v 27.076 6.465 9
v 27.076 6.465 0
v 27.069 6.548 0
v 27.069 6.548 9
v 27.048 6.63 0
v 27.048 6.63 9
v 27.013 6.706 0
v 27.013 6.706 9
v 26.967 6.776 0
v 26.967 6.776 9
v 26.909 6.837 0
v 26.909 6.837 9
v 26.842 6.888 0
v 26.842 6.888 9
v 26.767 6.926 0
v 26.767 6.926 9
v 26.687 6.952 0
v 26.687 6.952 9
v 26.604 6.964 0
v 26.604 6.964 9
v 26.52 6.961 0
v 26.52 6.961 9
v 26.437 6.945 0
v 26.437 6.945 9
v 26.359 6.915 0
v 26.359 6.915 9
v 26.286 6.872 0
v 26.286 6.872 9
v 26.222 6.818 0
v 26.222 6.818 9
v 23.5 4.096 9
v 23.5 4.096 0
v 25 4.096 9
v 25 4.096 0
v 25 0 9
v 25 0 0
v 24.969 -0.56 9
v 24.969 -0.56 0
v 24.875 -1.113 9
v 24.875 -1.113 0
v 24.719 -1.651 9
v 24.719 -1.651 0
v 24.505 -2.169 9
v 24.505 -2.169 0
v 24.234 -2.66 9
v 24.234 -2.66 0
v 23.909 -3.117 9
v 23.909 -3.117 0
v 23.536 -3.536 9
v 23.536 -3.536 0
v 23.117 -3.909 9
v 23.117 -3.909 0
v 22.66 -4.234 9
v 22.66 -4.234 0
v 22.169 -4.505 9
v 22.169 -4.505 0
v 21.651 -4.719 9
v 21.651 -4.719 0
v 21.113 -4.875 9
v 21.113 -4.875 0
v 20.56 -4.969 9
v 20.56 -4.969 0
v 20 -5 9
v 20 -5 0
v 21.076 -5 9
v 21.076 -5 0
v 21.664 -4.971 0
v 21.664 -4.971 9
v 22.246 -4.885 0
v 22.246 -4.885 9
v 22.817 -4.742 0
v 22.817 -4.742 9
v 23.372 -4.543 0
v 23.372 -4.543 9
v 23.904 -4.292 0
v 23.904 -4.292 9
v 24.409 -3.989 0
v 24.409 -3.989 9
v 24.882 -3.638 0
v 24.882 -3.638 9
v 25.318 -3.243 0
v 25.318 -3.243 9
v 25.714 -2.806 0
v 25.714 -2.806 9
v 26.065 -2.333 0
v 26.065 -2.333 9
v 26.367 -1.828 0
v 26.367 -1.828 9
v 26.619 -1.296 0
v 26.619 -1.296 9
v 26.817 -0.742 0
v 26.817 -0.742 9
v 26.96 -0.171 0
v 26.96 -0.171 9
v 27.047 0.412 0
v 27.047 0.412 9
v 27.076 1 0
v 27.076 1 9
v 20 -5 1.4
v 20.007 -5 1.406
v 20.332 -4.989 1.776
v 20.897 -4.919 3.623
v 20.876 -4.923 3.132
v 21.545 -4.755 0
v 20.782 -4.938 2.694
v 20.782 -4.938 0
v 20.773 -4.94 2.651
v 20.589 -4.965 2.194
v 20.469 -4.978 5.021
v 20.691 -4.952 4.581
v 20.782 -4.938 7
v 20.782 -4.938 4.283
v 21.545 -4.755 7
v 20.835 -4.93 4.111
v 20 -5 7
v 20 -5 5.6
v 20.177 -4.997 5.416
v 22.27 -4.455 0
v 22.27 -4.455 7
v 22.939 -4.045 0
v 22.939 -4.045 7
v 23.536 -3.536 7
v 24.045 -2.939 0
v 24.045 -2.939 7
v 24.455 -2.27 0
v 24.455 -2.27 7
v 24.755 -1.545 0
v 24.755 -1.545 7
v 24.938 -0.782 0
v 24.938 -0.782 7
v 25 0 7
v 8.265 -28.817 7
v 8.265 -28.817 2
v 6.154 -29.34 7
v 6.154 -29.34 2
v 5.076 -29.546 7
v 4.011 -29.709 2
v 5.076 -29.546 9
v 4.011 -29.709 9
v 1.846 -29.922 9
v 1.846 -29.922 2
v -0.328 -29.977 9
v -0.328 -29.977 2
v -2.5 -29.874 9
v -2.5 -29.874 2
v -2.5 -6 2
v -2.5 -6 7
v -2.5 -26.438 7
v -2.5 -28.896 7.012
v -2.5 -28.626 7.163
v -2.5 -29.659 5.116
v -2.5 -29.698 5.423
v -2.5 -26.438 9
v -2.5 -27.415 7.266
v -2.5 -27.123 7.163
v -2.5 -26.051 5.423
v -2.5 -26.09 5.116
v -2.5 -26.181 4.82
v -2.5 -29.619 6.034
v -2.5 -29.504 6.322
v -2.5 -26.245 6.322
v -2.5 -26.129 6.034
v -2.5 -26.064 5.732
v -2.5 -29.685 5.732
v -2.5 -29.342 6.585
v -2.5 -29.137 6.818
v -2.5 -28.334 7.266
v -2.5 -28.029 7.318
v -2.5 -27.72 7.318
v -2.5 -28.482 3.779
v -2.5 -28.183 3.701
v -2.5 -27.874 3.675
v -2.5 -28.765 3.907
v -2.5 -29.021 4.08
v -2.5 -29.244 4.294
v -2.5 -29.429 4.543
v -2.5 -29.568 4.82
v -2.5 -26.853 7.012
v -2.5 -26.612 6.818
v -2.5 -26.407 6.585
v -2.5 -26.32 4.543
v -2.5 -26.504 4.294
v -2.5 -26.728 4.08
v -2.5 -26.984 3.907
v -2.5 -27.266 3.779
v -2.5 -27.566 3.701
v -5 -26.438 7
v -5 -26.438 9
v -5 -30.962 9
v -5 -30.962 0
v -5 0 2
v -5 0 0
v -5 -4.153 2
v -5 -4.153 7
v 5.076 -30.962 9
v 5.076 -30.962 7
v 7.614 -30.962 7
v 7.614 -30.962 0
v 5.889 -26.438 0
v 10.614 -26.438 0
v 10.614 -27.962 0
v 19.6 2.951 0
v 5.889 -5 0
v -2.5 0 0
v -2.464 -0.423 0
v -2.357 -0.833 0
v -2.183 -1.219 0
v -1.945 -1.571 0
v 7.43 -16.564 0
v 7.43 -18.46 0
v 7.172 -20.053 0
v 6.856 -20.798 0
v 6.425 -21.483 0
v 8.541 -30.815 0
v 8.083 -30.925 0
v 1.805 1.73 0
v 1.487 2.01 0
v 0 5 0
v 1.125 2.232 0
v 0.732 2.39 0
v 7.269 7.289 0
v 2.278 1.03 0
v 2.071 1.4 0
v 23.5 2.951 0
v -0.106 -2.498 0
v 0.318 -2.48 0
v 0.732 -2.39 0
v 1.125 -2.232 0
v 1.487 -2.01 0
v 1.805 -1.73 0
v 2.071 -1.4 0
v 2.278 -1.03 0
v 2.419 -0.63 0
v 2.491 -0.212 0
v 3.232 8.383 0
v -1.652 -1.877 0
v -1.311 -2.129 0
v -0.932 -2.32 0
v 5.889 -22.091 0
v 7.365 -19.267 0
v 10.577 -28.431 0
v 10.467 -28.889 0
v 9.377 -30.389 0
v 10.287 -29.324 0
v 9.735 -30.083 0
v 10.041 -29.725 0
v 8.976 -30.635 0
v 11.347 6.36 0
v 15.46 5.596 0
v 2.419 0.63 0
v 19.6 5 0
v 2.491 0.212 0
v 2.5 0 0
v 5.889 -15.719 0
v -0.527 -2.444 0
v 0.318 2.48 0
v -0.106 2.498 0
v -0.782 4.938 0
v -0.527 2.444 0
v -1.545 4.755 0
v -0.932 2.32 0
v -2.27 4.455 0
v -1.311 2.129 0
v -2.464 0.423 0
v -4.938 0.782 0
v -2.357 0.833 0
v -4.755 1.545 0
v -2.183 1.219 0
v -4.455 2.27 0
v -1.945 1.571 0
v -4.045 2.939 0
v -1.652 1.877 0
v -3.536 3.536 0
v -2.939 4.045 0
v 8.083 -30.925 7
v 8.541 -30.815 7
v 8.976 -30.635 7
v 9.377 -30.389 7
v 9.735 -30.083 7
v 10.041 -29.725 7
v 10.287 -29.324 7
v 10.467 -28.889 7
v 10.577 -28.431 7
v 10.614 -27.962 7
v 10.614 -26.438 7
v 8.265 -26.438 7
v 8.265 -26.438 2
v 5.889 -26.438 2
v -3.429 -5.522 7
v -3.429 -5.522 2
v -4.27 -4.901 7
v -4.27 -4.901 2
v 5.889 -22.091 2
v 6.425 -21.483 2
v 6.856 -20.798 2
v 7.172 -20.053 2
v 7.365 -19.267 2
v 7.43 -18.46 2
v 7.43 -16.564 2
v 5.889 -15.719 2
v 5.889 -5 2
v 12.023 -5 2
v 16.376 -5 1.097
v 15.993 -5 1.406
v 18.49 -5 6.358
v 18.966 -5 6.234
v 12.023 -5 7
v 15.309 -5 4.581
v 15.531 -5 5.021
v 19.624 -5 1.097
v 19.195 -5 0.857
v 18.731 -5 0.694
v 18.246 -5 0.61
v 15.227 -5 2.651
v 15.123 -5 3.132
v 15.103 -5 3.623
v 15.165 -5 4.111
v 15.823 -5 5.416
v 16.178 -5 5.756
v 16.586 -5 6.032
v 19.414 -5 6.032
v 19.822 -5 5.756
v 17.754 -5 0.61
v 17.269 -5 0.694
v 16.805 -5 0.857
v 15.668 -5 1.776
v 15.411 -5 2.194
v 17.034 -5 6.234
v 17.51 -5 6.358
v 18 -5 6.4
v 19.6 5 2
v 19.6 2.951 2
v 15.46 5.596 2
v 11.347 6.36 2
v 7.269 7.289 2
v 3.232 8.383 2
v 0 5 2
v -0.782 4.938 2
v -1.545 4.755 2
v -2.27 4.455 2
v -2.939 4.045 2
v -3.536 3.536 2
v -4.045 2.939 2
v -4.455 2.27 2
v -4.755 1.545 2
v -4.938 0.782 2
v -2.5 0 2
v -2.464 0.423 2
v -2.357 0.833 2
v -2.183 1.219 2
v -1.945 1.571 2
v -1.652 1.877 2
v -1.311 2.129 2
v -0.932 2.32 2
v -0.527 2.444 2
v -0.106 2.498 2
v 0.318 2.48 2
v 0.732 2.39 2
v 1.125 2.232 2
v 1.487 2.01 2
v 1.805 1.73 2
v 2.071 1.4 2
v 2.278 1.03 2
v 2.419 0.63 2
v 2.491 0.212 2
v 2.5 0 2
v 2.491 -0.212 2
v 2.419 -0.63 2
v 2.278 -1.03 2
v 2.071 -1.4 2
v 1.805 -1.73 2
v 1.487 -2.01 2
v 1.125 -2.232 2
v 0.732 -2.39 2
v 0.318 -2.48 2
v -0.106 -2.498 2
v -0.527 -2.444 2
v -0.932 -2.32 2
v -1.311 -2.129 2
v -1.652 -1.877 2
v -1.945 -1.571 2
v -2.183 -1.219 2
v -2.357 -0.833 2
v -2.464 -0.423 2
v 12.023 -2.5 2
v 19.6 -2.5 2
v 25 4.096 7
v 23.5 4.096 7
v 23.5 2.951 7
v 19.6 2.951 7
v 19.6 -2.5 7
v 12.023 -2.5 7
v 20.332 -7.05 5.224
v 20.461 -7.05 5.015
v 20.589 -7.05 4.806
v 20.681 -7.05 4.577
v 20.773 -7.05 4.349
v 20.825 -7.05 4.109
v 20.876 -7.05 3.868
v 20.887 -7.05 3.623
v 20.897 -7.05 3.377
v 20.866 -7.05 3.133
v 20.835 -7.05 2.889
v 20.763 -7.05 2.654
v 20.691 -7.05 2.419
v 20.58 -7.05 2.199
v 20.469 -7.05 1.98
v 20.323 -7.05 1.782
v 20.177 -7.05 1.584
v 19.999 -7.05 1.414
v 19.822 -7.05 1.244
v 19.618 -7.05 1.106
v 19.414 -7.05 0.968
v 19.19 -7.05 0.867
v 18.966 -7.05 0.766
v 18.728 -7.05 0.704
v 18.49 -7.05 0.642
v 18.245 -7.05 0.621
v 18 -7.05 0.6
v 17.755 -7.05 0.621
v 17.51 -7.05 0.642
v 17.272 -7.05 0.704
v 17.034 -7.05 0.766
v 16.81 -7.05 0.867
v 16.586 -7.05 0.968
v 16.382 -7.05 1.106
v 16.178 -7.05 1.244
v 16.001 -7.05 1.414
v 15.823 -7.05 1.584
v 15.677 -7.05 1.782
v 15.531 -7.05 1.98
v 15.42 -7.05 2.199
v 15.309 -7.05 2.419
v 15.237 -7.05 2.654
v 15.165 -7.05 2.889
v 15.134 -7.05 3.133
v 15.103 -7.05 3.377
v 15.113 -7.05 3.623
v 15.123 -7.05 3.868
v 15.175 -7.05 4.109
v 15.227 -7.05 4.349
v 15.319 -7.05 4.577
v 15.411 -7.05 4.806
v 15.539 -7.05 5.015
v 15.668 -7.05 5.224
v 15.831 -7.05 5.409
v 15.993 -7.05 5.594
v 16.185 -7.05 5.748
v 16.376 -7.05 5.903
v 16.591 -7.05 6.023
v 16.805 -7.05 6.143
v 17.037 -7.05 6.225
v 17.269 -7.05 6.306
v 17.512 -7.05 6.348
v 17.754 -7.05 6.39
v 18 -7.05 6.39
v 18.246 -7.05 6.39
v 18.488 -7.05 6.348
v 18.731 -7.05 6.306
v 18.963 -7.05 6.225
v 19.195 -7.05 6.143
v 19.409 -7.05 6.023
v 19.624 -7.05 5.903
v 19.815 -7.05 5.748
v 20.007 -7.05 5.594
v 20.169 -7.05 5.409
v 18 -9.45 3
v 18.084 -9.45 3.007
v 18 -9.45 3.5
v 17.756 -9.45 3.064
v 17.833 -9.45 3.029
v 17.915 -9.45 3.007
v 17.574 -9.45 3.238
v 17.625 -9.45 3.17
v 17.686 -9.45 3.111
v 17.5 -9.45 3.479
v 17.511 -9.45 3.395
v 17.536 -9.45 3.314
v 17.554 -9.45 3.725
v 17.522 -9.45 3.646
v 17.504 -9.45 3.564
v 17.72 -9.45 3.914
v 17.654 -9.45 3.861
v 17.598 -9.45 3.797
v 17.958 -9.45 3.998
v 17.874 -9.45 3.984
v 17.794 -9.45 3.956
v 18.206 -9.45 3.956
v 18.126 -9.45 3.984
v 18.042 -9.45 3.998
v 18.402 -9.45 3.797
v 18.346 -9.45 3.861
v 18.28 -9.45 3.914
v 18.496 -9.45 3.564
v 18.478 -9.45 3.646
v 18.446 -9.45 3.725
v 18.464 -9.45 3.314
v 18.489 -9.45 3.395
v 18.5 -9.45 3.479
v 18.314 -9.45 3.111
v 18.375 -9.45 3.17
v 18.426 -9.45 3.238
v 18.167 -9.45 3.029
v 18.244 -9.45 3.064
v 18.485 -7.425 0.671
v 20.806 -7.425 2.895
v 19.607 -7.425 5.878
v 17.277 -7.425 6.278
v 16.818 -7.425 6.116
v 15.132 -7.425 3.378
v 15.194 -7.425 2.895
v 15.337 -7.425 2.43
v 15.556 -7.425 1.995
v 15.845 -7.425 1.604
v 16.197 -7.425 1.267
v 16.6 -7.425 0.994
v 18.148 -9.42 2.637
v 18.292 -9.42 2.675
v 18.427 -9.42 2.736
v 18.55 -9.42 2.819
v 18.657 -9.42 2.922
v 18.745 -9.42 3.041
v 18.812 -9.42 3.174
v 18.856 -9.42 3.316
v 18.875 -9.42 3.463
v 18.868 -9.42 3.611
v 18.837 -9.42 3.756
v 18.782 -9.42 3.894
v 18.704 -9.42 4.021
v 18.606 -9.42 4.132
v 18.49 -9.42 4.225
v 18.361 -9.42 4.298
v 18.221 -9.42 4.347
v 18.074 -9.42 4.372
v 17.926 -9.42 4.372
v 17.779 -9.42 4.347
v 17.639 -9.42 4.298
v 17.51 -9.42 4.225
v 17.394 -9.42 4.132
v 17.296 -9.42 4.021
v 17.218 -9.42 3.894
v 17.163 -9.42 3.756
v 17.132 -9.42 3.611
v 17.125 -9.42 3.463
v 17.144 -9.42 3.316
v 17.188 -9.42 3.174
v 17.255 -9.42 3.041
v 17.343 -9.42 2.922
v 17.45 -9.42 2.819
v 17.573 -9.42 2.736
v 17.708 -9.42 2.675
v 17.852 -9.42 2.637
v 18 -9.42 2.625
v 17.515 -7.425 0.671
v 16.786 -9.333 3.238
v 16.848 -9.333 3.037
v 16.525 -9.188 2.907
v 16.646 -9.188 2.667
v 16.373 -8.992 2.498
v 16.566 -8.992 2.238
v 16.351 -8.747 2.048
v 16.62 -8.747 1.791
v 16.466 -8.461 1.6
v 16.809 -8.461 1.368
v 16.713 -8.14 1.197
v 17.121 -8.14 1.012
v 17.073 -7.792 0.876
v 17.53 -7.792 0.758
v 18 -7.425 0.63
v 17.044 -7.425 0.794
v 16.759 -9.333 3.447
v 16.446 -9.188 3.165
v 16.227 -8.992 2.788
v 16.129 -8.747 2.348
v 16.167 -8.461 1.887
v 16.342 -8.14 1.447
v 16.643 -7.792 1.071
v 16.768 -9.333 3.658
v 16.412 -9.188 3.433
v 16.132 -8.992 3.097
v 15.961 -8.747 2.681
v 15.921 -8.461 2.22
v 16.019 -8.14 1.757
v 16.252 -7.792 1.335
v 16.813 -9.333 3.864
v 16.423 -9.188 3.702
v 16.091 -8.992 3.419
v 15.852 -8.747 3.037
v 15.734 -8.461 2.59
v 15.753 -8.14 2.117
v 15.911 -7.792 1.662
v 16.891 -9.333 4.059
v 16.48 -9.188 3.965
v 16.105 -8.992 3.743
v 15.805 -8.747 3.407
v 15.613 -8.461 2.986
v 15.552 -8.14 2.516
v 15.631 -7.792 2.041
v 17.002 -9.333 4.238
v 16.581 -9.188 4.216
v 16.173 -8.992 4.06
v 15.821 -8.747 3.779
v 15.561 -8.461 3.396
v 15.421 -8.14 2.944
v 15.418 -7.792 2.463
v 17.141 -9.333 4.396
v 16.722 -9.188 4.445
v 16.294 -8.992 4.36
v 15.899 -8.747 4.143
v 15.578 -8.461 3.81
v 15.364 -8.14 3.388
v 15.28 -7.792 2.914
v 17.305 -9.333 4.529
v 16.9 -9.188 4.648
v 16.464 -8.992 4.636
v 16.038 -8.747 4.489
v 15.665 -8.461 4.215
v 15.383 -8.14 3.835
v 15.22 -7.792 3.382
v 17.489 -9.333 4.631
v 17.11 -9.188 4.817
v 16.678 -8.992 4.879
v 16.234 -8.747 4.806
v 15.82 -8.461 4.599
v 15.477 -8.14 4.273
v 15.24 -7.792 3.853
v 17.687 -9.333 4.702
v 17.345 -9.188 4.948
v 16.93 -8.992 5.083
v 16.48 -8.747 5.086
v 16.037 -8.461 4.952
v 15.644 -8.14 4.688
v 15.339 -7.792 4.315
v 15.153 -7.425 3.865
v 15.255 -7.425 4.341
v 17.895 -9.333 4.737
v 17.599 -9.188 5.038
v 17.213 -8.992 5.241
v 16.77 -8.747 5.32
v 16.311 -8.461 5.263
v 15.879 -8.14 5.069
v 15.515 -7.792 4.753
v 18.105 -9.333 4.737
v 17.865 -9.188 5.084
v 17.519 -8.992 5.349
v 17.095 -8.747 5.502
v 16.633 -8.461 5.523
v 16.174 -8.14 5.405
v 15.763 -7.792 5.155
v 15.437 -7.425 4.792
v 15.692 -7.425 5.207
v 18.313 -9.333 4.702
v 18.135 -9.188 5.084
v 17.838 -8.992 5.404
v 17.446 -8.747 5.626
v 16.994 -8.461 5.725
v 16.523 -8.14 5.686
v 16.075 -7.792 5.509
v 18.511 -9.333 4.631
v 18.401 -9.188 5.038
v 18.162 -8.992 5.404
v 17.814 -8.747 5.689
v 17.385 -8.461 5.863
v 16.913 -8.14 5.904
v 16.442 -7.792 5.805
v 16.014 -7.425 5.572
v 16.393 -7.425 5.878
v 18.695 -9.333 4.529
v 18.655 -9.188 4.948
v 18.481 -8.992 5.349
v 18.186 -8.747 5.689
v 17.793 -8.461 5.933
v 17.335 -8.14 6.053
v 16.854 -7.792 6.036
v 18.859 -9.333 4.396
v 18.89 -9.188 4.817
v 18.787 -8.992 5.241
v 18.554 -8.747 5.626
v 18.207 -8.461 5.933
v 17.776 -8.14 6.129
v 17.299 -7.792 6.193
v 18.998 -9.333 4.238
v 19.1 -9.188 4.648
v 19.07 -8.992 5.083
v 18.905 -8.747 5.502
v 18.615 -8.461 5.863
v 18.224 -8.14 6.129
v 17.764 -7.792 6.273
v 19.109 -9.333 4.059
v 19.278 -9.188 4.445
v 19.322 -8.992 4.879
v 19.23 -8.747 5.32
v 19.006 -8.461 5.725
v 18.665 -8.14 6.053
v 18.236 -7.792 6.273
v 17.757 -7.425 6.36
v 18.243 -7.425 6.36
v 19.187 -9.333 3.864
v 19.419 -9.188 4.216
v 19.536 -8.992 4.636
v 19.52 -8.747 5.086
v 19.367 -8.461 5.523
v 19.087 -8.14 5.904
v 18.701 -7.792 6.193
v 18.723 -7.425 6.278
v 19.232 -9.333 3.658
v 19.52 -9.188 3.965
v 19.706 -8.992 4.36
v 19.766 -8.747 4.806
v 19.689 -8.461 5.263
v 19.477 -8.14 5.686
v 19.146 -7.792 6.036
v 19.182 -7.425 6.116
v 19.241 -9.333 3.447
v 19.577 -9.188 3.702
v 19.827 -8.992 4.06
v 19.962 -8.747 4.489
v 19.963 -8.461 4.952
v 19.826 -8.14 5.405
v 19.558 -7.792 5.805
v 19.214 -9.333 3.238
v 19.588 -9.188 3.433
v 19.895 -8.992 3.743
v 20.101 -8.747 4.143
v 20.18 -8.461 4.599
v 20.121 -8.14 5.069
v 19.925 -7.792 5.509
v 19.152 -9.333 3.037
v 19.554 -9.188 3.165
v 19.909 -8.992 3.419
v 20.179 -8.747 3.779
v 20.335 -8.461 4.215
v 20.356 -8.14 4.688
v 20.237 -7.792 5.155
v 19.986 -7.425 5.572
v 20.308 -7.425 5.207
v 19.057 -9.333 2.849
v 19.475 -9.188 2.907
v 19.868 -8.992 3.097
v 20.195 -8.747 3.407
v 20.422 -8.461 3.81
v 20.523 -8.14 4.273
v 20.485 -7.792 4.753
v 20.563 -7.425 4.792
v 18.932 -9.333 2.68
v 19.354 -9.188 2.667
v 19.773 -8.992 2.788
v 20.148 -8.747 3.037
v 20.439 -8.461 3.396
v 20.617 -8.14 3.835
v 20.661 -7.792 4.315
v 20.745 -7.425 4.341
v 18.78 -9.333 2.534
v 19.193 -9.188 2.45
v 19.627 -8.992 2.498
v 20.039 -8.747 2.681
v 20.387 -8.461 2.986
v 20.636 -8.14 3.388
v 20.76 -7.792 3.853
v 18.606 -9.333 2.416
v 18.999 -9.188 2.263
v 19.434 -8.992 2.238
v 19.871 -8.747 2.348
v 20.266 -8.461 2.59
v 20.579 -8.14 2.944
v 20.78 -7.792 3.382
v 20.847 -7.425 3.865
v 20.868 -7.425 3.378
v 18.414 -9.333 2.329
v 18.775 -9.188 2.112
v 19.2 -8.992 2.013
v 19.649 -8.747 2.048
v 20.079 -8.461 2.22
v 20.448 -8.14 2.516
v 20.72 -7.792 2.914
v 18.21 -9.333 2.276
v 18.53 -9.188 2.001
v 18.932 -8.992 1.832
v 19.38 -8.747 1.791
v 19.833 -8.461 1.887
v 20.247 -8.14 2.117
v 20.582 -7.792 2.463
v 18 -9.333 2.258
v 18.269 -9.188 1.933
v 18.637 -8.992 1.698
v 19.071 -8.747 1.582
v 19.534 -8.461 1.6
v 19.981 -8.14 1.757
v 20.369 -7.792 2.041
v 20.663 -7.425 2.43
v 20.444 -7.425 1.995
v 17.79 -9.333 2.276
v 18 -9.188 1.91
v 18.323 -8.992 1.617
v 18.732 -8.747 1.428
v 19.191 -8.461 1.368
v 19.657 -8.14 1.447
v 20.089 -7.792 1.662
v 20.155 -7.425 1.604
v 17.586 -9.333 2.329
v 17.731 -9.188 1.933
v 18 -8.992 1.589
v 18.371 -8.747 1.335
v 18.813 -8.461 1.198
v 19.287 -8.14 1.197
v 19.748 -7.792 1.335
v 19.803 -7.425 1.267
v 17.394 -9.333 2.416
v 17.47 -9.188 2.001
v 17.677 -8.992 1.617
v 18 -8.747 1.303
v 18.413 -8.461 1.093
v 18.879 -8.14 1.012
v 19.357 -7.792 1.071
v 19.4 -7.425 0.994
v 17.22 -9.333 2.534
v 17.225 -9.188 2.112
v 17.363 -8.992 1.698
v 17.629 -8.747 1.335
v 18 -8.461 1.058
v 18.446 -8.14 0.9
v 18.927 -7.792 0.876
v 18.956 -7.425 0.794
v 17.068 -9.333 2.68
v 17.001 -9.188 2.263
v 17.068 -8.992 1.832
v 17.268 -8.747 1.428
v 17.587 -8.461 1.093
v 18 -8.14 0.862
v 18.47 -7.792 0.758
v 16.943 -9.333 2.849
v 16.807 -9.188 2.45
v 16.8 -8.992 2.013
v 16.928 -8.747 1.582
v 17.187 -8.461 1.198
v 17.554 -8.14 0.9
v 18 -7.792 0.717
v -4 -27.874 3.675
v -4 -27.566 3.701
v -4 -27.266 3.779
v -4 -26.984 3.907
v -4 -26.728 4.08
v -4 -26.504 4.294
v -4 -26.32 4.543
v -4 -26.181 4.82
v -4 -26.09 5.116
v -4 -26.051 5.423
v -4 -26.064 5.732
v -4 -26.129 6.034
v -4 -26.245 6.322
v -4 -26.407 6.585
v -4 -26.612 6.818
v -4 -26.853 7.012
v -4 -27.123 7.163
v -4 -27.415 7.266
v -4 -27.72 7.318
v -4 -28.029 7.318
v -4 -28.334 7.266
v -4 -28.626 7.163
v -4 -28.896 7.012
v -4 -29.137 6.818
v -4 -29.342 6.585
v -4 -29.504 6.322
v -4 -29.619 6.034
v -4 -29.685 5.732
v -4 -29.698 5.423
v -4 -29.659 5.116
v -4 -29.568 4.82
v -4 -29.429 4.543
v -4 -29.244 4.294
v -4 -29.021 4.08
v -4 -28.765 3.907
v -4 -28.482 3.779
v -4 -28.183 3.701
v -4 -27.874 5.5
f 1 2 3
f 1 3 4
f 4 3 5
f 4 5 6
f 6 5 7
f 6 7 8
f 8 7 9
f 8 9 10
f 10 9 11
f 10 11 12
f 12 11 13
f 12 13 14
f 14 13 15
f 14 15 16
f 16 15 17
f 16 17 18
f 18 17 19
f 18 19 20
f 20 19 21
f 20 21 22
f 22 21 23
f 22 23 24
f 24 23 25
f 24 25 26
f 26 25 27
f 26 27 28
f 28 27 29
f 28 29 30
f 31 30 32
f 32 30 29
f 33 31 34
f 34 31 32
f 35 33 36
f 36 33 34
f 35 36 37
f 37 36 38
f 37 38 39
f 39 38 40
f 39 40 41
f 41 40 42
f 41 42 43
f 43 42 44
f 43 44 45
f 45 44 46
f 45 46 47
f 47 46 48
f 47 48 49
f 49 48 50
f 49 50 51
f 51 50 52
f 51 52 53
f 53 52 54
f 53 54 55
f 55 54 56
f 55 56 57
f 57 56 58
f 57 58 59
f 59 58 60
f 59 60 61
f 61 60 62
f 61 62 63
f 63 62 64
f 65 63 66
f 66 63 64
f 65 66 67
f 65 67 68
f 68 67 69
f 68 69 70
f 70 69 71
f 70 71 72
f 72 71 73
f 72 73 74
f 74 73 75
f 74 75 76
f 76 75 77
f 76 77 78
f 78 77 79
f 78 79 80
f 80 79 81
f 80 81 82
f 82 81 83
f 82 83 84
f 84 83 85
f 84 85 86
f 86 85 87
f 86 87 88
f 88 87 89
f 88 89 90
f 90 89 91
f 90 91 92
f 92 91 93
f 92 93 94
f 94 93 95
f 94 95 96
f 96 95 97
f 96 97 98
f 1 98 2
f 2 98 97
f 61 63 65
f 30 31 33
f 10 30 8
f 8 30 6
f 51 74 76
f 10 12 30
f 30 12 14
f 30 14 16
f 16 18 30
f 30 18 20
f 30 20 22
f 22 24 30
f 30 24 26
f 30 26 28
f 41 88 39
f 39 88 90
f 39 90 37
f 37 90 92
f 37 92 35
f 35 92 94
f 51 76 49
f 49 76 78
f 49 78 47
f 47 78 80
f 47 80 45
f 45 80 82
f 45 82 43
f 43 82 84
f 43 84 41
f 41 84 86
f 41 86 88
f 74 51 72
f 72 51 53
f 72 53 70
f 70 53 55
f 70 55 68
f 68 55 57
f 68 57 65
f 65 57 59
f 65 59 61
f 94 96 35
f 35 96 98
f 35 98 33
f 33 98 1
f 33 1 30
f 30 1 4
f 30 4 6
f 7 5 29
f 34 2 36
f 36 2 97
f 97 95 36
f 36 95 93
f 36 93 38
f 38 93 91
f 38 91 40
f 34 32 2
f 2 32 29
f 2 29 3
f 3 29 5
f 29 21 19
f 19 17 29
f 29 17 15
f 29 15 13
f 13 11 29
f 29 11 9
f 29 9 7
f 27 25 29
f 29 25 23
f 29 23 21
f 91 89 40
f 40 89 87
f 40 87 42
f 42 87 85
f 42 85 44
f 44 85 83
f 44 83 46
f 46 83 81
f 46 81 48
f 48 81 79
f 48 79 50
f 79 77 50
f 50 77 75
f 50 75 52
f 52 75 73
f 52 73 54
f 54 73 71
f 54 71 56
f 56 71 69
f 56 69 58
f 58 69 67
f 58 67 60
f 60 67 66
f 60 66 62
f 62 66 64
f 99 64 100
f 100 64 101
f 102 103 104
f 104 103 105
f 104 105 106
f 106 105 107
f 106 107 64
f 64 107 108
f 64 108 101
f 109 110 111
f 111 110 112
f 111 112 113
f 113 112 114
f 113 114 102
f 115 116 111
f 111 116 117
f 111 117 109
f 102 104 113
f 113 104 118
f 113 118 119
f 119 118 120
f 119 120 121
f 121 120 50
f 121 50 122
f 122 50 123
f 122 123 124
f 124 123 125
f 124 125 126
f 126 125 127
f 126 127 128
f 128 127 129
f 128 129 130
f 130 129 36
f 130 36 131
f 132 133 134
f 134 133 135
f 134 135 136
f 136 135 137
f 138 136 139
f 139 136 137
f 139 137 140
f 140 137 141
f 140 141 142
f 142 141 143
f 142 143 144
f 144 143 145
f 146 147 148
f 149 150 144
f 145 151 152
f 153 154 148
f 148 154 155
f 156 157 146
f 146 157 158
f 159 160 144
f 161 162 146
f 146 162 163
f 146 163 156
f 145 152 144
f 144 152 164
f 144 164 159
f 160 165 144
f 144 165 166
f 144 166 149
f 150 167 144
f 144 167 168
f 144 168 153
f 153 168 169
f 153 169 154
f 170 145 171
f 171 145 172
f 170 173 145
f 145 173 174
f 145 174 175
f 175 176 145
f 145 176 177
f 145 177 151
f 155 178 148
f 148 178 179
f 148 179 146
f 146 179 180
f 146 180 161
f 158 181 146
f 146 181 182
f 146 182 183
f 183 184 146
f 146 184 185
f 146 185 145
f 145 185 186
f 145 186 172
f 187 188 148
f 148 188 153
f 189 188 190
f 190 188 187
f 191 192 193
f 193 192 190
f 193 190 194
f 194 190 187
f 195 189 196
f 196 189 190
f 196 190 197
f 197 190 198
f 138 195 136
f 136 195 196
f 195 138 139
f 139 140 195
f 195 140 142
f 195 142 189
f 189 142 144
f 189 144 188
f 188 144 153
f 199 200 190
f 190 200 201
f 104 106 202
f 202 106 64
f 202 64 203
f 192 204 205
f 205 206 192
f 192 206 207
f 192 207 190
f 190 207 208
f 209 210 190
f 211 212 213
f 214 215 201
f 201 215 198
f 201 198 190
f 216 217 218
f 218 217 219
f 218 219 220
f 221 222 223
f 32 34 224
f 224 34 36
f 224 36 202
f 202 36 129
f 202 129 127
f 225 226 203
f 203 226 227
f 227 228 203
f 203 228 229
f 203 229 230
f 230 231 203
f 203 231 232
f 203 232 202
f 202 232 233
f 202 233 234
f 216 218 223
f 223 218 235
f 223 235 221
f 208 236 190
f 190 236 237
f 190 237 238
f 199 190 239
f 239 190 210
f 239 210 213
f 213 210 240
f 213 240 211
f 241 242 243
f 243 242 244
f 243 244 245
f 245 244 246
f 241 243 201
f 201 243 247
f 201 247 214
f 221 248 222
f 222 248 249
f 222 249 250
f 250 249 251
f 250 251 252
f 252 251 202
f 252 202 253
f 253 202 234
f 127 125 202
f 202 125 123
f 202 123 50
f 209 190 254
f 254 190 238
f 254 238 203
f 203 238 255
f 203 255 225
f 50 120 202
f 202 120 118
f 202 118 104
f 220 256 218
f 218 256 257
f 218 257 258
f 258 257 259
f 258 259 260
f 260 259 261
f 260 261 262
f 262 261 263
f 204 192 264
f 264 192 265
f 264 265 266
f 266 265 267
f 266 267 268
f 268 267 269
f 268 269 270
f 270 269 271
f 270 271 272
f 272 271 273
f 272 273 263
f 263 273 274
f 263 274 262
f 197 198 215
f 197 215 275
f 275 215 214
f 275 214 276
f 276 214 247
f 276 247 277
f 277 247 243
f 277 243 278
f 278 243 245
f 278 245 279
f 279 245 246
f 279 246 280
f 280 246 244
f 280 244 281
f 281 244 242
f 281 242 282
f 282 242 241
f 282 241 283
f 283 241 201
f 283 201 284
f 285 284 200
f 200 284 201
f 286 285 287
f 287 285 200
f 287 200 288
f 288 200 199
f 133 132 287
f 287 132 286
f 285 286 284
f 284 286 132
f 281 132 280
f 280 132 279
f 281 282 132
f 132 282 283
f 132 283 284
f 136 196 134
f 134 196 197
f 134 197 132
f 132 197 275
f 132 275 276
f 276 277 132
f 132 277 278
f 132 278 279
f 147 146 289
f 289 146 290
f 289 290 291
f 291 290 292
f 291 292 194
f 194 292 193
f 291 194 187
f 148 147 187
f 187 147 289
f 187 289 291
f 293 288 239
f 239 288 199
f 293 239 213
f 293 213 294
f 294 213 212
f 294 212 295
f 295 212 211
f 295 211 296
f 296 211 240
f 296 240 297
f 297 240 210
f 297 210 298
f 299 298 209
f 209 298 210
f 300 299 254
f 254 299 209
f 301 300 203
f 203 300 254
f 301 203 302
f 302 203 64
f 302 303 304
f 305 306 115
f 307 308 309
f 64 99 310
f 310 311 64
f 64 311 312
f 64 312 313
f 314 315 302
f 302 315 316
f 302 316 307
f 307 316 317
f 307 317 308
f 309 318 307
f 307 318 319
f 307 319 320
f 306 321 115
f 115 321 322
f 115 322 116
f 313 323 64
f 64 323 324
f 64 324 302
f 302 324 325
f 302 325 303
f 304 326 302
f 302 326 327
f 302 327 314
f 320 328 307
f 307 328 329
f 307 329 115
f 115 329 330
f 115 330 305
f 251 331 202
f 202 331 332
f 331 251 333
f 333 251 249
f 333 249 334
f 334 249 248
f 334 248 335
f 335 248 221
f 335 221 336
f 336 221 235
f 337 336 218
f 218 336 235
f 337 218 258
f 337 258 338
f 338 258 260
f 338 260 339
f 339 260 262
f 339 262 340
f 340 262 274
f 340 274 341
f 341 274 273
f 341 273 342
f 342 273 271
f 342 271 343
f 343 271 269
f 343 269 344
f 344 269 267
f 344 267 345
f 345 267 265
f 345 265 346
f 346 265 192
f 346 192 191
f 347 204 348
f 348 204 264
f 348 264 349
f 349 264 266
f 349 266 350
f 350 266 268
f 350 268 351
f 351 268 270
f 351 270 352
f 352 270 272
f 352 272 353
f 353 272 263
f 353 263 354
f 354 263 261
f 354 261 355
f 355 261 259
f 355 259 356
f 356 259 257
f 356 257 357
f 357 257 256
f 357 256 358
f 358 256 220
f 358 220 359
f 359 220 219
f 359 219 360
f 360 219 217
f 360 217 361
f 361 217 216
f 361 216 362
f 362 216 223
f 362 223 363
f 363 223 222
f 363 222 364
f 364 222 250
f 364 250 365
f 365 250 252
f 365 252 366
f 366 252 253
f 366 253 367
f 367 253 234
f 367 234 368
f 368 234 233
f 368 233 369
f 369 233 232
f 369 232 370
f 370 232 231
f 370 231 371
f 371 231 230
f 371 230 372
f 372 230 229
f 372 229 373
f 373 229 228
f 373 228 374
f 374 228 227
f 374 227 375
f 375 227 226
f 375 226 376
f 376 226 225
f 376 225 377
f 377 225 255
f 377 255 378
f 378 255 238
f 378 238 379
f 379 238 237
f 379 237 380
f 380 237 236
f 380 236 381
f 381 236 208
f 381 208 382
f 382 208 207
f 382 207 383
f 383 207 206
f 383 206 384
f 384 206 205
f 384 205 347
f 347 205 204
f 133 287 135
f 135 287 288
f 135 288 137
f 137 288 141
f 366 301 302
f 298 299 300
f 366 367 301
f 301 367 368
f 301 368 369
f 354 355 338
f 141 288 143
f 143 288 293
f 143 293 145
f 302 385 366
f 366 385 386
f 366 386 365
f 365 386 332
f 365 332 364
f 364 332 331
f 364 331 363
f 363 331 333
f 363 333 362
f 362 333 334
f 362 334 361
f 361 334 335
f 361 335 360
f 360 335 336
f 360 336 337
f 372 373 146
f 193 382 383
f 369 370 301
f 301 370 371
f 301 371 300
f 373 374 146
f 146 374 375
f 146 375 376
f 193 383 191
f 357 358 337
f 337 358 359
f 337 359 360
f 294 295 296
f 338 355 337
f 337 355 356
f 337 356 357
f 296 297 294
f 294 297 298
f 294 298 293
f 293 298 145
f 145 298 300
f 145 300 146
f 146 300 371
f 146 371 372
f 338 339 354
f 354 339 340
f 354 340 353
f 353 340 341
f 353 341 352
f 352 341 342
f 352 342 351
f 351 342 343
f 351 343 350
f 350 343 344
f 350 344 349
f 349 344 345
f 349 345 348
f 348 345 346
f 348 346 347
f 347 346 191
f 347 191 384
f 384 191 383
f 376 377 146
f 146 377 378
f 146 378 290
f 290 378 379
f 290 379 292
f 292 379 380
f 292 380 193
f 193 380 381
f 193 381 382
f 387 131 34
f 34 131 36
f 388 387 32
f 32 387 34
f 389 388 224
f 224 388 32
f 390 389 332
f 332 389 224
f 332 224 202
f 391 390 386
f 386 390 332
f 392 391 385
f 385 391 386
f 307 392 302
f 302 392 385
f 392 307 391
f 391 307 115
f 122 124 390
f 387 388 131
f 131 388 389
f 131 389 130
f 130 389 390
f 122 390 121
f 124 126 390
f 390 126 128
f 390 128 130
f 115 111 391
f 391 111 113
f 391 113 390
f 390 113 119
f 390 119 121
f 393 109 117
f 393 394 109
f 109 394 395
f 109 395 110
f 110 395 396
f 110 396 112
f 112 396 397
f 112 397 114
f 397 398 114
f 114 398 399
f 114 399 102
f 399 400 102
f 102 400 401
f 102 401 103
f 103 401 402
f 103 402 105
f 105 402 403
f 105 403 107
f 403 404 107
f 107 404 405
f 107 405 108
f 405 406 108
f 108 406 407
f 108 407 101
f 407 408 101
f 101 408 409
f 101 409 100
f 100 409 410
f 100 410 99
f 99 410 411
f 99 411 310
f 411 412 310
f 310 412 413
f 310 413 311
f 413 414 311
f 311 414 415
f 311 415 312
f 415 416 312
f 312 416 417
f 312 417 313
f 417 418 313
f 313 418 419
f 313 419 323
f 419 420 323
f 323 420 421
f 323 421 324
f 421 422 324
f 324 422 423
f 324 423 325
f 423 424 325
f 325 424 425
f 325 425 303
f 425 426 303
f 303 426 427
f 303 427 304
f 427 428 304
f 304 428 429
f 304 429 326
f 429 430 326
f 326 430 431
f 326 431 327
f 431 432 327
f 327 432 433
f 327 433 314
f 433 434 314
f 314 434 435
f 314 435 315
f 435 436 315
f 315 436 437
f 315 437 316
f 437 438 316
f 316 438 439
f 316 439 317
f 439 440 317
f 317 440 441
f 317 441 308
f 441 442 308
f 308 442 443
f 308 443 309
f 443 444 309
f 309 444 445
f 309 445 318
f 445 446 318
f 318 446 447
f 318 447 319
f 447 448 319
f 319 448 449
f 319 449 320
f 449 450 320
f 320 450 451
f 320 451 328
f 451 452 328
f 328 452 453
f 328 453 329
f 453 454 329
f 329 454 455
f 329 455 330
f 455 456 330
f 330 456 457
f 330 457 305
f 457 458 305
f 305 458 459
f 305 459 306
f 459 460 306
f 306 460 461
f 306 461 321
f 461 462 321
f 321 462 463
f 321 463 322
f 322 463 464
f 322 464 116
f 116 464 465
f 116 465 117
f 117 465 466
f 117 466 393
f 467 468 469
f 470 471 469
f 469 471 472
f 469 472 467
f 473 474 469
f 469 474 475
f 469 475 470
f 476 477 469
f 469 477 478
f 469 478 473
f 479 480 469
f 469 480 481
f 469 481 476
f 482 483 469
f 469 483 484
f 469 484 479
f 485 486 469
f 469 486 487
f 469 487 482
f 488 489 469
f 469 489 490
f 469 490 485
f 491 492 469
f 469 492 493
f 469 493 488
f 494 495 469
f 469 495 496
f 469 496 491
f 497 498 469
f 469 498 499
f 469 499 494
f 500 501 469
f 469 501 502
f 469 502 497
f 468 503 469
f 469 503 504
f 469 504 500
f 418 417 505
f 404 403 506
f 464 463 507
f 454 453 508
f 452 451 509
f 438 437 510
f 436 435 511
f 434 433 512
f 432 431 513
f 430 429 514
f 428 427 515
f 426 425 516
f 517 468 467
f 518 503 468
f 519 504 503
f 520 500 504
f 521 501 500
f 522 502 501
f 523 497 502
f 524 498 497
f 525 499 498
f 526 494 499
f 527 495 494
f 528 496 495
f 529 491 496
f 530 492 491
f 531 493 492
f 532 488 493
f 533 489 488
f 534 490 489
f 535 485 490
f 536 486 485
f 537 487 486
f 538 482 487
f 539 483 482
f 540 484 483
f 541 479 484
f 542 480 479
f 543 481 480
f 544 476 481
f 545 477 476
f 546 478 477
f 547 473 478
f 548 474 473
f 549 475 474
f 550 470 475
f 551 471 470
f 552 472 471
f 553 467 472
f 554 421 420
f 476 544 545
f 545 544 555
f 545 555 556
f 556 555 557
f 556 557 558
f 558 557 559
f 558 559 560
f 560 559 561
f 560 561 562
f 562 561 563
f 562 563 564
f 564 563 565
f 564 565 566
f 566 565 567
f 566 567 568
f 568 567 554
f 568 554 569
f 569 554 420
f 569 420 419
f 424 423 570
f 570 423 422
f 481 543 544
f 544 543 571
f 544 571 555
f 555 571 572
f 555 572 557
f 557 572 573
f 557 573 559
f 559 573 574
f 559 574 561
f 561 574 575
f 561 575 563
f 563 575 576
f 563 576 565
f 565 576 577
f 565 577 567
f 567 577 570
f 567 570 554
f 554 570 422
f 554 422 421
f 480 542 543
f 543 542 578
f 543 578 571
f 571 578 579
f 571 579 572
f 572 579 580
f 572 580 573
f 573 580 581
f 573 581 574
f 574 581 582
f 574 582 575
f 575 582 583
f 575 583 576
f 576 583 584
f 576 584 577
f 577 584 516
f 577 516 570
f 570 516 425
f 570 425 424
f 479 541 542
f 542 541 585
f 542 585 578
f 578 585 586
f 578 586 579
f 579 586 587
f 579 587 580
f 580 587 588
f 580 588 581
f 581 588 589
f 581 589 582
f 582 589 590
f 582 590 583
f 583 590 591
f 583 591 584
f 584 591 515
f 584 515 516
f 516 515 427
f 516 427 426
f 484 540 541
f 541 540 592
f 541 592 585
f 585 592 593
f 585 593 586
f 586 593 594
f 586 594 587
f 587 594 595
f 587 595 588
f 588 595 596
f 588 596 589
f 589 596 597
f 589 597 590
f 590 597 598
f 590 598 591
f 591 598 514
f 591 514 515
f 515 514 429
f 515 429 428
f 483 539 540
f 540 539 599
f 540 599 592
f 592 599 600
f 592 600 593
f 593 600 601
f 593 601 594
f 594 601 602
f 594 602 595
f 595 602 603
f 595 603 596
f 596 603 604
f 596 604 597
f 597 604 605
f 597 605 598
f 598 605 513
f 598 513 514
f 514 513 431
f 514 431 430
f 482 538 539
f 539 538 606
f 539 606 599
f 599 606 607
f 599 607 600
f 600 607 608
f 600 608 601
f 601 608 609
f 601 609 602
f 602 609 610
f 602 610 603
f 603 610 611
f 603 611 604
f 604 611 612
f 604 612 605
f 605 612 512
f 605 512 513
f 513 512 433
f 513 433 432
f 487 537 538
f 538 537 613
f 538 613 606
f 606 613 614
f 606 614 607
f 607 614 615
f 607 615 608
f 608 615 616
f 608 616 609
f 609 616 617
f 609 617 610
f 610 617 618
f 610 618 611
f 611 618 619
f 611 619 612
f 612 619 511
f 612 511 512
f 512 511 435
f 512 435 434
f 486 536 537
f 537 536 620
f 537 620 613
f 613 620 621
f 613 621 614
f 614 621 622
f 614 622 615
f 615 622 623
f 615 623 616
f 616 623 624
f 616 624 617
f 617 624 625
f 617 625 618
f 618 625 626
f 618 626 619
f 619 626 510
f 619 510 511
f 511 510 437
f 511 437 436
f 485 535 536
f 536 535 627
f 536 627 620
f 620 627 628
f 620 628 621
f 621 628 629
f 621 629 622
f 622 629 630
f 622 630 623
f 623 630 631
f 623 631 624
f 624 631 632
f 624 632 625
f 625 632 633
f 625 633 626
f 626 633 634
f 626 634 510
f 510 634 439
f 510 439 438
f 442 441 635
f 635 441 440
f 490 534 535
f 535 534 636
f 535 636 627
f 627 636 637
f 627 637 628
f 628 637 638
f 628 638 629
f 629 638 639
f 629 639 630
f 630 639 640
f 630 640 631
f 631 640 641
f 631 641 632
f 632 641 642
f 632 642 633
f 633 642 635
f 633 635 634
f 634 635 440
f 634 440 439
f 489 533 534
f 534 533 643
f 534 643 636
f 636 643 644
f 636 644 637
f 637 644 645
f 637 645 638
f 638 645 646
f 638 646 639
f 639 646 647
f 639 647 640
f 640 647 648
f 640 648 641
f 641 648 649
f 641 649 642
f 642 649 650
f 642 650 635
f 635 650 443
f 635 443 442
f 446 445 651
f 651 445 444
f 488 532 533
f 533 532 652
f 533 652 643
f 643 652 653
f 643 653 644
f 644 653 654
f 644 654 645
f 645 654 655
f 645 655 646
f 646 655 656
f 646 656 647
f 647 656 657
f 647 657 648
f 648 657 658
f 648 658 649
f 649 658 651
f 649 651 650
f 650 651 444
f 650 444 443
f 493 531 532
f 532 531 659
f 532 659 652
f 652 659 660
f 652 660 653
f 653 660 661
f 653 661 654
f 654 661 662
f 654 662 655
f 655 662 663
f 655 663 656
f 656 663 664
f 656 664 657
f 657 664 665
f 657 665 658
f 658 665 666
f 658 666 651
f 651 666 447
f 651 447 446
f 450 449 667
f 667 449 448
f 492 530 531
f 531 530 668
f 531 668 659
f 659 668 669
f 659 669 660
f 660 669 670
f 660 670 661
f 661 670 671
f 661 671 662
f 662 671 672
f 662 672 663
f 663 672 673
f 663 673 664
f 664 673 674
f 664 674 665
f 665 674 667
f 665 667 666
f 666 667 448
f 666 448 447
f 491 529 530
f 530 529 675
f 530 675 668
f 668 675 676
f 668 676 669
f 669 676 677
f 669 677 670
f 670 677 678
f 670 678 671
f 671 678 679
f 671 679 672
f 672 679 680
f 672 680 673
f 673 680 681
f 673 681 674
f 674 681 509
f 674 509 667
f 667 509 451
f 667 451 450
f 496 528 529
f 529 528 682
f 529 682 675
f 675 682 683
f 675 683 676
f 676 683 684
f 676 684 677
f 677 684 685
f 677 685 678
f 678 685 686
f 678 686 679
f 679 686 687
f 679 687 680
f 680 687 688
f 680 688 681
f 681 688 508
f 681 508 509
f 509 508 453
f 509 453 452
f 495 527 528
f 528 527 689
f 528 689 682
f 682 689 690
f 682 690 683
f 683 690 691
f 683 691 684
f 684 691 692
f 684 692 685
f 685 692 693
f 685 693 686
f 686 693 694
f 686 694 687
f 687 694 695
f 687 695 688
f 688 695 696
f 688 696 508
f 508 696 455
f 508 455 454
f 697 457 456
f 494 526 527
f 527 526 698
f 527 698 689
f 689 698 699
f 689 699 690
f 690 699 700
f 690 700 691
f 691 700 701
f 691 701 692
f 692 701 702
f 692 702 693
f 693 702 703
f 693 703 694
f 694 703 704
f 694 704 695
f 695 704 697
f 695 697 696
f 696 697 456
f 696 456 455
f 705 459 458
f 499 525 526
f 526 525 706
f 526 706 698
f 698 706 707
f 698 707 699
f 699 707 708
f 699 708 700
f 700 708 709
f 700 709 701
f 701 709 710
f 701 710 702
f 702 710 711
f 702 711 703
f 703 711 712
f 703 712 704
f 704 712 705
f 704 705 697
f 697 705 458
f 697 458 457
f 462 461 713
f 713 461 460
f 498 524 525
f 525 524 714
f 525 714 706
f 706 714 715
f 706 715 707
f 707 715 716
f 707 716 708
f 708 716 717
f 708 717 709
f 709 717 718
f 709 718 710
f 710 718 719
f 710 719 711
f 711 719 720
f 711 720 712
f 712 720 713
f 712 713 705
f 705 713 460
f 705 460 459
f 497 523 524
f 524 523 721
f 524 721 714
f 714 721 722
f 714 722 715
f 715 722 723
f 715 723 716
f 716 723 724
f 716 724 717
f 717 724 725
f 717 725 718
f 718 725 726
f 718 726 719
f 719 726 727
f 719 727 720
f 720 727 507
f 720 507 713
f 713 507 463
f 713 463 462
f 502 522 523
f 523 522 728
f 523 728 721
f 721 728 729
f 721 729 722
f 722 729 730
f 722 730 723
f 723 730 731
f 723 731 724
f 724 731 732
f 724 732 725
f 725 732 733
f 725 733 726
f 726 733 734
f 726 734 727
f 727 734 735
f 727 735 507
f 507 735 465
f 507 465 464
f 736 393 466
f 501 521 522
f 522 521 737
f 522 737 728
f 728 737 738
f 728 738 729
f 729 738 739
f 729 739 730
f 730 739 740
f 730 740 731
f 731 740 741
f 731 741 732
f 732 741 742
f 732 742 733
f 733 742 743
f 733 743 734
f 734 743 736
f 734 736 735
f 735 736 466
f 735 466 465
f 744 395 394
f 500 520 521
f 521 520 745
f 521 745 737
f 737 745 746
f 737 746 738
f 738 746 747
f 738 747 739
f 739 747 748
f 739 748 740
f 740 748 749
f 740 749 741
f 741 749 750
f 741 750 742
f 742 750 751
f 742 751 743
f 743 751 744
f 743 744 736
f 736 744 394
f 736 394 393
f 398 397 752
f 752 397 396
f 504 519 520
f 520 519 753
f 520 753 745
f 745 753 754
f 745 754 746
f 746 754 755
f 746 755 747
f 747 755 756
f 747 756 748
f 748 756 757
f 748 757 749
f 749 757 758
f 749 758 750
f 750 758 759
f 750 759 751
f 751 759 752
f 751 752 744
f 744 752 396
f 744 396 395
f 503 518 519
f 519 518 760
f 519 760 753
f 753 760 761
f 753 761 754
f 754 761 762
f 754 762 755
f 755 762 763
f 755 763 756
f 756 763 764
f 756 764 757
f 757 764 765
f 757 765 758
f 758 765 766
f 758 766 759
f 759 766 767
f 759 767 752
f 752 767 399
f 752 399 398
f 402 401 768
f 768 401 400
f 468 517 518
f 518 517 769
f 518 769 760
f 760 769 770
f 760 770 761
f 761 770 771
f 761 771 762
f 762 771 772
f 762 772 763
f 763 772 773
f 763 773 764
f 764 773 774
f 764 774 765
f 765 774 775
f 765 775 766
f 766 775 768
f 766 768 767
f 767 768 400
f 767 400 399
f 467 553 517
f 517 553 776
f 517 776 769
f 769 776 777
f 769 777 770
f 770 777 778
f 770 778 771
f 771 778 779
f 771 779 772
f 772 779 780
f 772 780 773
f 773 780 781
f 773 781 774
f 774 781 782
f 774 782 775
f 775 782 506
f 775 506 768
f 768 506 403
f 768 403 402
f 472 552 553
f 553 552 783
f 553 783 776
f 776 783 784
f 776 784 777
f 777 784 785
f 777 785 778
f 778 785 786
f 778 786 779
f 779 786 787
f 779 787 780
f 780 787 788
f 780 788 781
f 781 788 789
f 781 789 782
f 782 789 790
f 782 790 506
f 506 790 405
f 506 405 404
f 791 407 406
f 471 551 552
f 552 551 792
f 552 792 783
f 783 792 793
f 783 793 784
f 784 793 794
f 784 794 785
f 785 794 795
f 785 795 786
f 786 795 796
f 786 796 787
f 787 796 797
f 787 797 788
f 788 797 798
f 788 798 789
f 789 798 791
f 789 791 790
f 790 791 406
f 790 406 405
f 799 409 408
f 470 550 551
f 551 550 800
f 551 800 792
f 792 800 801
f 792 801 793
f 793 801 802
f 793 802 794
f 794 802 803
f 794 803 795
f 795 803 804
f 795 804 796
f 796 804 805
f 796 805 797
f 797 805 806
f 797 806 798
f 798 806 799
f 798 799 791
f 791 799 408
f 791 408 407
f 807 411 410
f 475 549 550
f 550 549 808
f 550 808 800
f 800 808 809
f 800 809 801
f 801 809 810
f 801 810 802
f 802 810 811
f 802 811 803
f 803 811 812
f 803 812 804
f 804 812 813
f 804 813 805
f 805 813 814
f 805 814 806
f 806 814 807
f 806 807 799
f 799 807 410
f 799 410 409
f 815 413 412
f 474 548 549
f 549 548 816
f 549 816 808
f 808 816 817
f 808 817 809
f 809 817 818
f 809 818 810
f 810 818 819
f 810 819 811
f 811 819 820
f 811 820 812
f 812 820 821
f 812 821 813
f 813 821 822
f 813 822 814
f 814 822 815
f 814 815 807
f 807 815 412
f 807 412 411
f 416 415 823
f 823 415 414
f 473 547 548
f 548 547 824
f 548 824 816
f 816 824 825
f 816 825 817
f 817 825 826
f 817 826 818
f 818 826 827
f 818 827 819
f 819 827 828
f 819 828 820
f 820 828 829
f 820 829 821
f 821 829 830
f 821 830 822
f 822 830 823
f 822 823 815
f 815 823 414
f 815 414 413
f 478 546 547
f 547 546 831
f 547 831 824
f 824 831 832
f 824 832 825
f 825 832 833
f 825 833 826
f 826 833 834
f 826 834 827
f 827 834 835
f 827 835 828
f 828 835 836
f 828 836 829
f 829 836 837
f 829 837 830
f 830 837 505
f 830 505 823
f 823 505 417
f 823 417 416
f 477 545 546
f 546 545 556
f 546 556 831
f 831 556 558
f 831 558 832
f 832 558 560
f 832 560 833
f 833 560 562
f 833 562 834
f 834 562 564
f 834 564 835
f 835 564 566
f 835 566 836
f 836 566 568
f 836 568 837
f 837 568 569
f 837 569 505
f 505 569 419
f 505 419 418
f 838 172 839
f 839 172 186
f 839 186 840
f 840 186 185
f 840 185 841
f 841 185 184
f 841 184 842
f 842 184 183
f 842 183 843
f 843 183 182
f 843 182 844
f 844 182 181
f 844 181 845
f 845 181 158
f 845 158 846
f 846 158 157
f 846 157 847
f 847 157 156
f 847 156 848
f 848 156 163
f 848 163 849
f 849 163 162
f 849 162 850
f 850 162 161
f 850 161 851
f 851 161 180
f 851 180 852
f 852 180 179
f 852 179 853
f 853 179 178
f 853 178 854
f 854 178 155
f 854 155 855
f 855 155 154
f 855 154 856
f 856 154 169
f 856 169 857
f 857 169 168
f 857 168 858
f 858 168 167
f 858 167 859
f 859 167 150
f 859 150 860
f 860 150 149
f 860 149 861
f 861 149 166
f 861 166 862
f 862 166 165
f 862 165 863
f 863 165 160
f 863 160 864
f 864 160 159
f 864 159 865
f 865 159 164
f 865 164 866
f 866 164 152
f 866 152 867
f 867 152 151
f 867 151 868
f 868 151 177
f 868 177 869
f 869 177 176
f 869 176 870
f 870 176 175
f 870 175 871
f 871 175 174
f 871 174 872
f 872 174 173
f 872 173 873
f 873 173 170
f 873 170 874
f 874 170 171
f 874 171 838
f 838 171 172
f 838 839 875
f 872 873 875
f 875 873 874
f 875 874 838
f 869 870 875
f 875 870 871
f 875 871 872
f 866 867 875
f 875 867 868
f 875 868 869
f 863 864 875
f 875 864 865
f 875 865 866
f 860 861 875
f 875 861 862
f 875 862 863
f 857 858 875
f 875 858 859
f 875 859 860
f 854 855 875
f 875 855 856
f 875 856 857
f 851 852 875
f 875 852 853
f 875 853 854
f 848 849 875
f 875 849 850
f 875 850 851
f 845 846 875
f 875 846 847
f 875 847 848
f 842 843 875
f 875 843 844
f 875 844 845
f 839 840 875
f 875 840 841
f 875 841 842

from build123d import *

# Parameters (mm, degrees)
EXTRUDE_3_DEPTH     = 9
EXTRUDE_3_2_DEPTH   = 9
EXTRUDE_4_DEPTH     = 7
SKETCH_1_8_R        = 2.5
EXTRUDE_5_DEPTH     = 2
SKETCH_2_R          = 2.9
EXTRUDE_6_DEPTH     = 2.45
SKETCH_4_R          = 2.9
EXTRUDE_7_DEPTH     = 2
FILLET_2_R          = 2.4
SKETCH_5_R          = 1.825
CUT_EXTRUDE_1_DEPTH = 1.5


with BuildPart() as part:
    # 스케치1 → 보스-돌출3 (new body)
    with BuildSketch(Plane.XY):
        with BuildLine():
            Line((-2.5, -26.437677825), (-5, -26.437677825))
            Line((-5, -26.437677825), (-5, -30.96175738))
            Line((-5, -30.96175738), (5.076141326, -30.96175738))
            Line((5.076141326, -30.96175738), (5.076141326, -29.54601506))
            ThreePointArc((5.076141326, -29.54601506), (1.298498135, -29.950761581), (-2.5, -29.874474333))
            Line((-2.5, -29.874474333), (-2.5, -26.437677825))
        make_face()
    extrude(amount=EXTRUDE_3_DEPTH)

    # 스케치1<7> → 보스-돌출4 (add)
    with BuildSketch(Plane.XY):
        with BuildLine():
            Line((23.5, 2.950728465), (19.6, 2.950728465))
            Line((19.6, 2.950728465), (19.6, -2.5))
            Line((19.6, -2.5), (12.023157318, -2.5))
            Line((12.023157318, -2.5), (12.023157318, -5))
            Line((12.023157318, -5), (20, -5))
            ThreePointArc((20, -5), (23.535533906, -3.535533906), (25, 0))
            Line((25, 0), (25, 4.09591659))
            Line((25, 4.09591659), (23.5, 4.09591659))
            Line((23.5, 4.09591659), (23.5, 2.950728465))
        make_face()
        with BuildLine():
            ThreePointArc((-2.5, -6), (-3.862002616, -5.228282299), (-5, -4.153311931))
            Line((-5, -4.153311931), (-5, -26.437677825))
            Line((-5, -26.437677825), (-2.5, -26.437677825))
            Line((-2.5, -26.437677825), (-2.5, -6))
        make_face()
        with BuildLine():
            Line((5.076141326, -29.54601506), (5.076141326, -30.96175738))
            Line((5.076141326, -30.96175738), (7.613716386, -30.96175738))
            ThreePointArc((7.613716386, -30.96175738), (9.735036729, -30.083077723), (10.613716386, -27.96175738))
            Line((10.613716386, -27.96175738), (10.613716386, -26.437579436))
            Line((10.613716386, -26.437579436), (8.264928228, -26.437579436))
            Line((8.264928228, -26.437579436), (8.264928228, -28.81709871))
            ThreePointArc((8.264928228, -28.81709871), (6.680483813, -29.225080884), (5.076141326, -29.54601506))
        make_face()
    extrude(amount=EXTRUDE_4_DEPTH)


with BuildPart() as body_2:
    # 스케치1 → Extrude 3 2 (new body)
    with BuildSketch(Plane.XY):
        with BuildLine():
            Line((26.22215467, 6.81807126), (23.5, 4.09591659))
            Line((23.5, 4.09591659), (25, 4.09591659))
            Line((25, 4.09591659), (25, 0))
            ThreePointArc((25, 0), (23.535533906, -3.535533906), (20, -5))
            Line((20, -5), (21.075708061, -5))
            ThreePointArc((21.075708061, -5), (25.318348748, -3.242640687), (27.075708061, 1))
            Line((27.075708061, 1), (27.075708061, 6.46451787))
            ThreePointArc((27.075708061, 6.46451787), (26.767049777, 6.926457636), (26.22215467, 6.81807126))
        make_face()
    extrude(amount=EXTRUDE_3_2_DEPTH)


with BuildPart() as extrude_4_piece_1:
    # of the separate pieces the step leaves, piece 1, a body of its own (extrude_4_pieces)
    add(part.part.solids().sort_by_distance((-2.5, -29.874474333, 0))[0])



with BuildPart() as extrude_4_piece_2:
    # of the separate pieces the step leaves, piece 2, a body of its own (extrude_4_pieces)
    add(part.part.solids().sort_by_distance((23.5, 2.950728465, 0))[0])


with BuildPart() as extrude_4_piece_1_1:
    add(extrude_4_piece_1.part)

    add(extrude_4_piece_2.part)  # 보스-돌출5 merges 보스-돌출4 piece 2
    # 스케치1<8> → 보스-돌출5 (add)
    with BuildSketch(Plane.XY):
        with BuildLine():
            Line((3.231912185, 8.38327913), (0, 5))
            ThreePointArc((0, 5), (-3.535533906, 3.535533906), (-5, 0))
            Line((-5, 0), (-5, -4.153311931))
            ThreePointArc((-5, -4.153311931), (-3.862002616, -5.228282299), (-2.5, -6))
            Line((-2.5, -6), (-2.5, -29.874474333))
            ThreePointArc((-2.5, -29.874474333), (2.93054776, -29.83531643), (8.264928228, -28.81709871))
            Line((8.264928228, -28.81709871), (8.264928228, -26.437579436))
            Line((8.264928228, -26.437579436), (5.889404941, -26.437579436))
            Line((5.889404941, -26.437579436), (5.889404941, -22.090836604))
            ThreePointArc((5.889404941, -22.090836604), (7.029116149, -20.43207672), (7.430270561, -18.459894902))
            Line((7.430270561, -18.459894902), (7.430270561, -16.564445668))
            Line((7.430270561, -16.564445668), (5.889404941, -15.718789718))
            Line((5.889404941, -15.718789718), (5.889404941, -5))
            Line((5.889404941, -5), (12.023157318, -5))
            Line((12.023157318, -5), (12.023157318, -2.5))
            Line((12.023157318, -2.5), (19.6, -2.5))
            Line((19.6, -2.5), (19.6, 5))
            ThreePointArc((19.6, 5), (11.347380216, 6.359873864), (3.231912185, 8.38327913))
        make_face()
        Circle(SKETCH_1_8_R, mode=Mode.SUBTRACT)
    extrude(amount=EXTRUDE_5_DEPTH)

    # 스케치2 → 보스-돌출6 (add, symmetric)
    with BuildSketch(Plane.XZ.offset(5)):
        with Locations((18, 3.5)):
            Circle(SKETCH_2_R)
    extrude(amount=EXTRUDE_6_DEPTH, both=True)

    # 스케치4 → 보스-돌출7 (add)
    with BuildSketch(Plane.XZ.offset(7.45)):
        with Locations((18, 3.5)):
            Circle(SKETCH_4_R)
    extrude(amount=EXTRUDE_7_DEPTH)

    # 필렛2
    fillet_2_edges = [extrude_4_piece_1_1.edges().sort_by_distance(p)[0] for p in [
        (15.1, -9.45, 3.5),
    ]]
    fillet(fillet_2_edges, radius=FILLET_2_R)

    # 스케치5 → 컷-돌출1 (cut)
    with BuildSketch(Plane(origin=(-2.5, 0, 0), x_dir=(0, 0, -1), z_dir=(1, 0, 0))):
        with Locations((-5.5, -27.874474333)):
            Circle(SKETCH_5_R)
    extrude(amount=-CUT_EXTRUDE_1_DEPTH, mode=Mode.SUBTRACT)


solid = Compound([body_2.part, extrude_4_piece_1_1.part])
